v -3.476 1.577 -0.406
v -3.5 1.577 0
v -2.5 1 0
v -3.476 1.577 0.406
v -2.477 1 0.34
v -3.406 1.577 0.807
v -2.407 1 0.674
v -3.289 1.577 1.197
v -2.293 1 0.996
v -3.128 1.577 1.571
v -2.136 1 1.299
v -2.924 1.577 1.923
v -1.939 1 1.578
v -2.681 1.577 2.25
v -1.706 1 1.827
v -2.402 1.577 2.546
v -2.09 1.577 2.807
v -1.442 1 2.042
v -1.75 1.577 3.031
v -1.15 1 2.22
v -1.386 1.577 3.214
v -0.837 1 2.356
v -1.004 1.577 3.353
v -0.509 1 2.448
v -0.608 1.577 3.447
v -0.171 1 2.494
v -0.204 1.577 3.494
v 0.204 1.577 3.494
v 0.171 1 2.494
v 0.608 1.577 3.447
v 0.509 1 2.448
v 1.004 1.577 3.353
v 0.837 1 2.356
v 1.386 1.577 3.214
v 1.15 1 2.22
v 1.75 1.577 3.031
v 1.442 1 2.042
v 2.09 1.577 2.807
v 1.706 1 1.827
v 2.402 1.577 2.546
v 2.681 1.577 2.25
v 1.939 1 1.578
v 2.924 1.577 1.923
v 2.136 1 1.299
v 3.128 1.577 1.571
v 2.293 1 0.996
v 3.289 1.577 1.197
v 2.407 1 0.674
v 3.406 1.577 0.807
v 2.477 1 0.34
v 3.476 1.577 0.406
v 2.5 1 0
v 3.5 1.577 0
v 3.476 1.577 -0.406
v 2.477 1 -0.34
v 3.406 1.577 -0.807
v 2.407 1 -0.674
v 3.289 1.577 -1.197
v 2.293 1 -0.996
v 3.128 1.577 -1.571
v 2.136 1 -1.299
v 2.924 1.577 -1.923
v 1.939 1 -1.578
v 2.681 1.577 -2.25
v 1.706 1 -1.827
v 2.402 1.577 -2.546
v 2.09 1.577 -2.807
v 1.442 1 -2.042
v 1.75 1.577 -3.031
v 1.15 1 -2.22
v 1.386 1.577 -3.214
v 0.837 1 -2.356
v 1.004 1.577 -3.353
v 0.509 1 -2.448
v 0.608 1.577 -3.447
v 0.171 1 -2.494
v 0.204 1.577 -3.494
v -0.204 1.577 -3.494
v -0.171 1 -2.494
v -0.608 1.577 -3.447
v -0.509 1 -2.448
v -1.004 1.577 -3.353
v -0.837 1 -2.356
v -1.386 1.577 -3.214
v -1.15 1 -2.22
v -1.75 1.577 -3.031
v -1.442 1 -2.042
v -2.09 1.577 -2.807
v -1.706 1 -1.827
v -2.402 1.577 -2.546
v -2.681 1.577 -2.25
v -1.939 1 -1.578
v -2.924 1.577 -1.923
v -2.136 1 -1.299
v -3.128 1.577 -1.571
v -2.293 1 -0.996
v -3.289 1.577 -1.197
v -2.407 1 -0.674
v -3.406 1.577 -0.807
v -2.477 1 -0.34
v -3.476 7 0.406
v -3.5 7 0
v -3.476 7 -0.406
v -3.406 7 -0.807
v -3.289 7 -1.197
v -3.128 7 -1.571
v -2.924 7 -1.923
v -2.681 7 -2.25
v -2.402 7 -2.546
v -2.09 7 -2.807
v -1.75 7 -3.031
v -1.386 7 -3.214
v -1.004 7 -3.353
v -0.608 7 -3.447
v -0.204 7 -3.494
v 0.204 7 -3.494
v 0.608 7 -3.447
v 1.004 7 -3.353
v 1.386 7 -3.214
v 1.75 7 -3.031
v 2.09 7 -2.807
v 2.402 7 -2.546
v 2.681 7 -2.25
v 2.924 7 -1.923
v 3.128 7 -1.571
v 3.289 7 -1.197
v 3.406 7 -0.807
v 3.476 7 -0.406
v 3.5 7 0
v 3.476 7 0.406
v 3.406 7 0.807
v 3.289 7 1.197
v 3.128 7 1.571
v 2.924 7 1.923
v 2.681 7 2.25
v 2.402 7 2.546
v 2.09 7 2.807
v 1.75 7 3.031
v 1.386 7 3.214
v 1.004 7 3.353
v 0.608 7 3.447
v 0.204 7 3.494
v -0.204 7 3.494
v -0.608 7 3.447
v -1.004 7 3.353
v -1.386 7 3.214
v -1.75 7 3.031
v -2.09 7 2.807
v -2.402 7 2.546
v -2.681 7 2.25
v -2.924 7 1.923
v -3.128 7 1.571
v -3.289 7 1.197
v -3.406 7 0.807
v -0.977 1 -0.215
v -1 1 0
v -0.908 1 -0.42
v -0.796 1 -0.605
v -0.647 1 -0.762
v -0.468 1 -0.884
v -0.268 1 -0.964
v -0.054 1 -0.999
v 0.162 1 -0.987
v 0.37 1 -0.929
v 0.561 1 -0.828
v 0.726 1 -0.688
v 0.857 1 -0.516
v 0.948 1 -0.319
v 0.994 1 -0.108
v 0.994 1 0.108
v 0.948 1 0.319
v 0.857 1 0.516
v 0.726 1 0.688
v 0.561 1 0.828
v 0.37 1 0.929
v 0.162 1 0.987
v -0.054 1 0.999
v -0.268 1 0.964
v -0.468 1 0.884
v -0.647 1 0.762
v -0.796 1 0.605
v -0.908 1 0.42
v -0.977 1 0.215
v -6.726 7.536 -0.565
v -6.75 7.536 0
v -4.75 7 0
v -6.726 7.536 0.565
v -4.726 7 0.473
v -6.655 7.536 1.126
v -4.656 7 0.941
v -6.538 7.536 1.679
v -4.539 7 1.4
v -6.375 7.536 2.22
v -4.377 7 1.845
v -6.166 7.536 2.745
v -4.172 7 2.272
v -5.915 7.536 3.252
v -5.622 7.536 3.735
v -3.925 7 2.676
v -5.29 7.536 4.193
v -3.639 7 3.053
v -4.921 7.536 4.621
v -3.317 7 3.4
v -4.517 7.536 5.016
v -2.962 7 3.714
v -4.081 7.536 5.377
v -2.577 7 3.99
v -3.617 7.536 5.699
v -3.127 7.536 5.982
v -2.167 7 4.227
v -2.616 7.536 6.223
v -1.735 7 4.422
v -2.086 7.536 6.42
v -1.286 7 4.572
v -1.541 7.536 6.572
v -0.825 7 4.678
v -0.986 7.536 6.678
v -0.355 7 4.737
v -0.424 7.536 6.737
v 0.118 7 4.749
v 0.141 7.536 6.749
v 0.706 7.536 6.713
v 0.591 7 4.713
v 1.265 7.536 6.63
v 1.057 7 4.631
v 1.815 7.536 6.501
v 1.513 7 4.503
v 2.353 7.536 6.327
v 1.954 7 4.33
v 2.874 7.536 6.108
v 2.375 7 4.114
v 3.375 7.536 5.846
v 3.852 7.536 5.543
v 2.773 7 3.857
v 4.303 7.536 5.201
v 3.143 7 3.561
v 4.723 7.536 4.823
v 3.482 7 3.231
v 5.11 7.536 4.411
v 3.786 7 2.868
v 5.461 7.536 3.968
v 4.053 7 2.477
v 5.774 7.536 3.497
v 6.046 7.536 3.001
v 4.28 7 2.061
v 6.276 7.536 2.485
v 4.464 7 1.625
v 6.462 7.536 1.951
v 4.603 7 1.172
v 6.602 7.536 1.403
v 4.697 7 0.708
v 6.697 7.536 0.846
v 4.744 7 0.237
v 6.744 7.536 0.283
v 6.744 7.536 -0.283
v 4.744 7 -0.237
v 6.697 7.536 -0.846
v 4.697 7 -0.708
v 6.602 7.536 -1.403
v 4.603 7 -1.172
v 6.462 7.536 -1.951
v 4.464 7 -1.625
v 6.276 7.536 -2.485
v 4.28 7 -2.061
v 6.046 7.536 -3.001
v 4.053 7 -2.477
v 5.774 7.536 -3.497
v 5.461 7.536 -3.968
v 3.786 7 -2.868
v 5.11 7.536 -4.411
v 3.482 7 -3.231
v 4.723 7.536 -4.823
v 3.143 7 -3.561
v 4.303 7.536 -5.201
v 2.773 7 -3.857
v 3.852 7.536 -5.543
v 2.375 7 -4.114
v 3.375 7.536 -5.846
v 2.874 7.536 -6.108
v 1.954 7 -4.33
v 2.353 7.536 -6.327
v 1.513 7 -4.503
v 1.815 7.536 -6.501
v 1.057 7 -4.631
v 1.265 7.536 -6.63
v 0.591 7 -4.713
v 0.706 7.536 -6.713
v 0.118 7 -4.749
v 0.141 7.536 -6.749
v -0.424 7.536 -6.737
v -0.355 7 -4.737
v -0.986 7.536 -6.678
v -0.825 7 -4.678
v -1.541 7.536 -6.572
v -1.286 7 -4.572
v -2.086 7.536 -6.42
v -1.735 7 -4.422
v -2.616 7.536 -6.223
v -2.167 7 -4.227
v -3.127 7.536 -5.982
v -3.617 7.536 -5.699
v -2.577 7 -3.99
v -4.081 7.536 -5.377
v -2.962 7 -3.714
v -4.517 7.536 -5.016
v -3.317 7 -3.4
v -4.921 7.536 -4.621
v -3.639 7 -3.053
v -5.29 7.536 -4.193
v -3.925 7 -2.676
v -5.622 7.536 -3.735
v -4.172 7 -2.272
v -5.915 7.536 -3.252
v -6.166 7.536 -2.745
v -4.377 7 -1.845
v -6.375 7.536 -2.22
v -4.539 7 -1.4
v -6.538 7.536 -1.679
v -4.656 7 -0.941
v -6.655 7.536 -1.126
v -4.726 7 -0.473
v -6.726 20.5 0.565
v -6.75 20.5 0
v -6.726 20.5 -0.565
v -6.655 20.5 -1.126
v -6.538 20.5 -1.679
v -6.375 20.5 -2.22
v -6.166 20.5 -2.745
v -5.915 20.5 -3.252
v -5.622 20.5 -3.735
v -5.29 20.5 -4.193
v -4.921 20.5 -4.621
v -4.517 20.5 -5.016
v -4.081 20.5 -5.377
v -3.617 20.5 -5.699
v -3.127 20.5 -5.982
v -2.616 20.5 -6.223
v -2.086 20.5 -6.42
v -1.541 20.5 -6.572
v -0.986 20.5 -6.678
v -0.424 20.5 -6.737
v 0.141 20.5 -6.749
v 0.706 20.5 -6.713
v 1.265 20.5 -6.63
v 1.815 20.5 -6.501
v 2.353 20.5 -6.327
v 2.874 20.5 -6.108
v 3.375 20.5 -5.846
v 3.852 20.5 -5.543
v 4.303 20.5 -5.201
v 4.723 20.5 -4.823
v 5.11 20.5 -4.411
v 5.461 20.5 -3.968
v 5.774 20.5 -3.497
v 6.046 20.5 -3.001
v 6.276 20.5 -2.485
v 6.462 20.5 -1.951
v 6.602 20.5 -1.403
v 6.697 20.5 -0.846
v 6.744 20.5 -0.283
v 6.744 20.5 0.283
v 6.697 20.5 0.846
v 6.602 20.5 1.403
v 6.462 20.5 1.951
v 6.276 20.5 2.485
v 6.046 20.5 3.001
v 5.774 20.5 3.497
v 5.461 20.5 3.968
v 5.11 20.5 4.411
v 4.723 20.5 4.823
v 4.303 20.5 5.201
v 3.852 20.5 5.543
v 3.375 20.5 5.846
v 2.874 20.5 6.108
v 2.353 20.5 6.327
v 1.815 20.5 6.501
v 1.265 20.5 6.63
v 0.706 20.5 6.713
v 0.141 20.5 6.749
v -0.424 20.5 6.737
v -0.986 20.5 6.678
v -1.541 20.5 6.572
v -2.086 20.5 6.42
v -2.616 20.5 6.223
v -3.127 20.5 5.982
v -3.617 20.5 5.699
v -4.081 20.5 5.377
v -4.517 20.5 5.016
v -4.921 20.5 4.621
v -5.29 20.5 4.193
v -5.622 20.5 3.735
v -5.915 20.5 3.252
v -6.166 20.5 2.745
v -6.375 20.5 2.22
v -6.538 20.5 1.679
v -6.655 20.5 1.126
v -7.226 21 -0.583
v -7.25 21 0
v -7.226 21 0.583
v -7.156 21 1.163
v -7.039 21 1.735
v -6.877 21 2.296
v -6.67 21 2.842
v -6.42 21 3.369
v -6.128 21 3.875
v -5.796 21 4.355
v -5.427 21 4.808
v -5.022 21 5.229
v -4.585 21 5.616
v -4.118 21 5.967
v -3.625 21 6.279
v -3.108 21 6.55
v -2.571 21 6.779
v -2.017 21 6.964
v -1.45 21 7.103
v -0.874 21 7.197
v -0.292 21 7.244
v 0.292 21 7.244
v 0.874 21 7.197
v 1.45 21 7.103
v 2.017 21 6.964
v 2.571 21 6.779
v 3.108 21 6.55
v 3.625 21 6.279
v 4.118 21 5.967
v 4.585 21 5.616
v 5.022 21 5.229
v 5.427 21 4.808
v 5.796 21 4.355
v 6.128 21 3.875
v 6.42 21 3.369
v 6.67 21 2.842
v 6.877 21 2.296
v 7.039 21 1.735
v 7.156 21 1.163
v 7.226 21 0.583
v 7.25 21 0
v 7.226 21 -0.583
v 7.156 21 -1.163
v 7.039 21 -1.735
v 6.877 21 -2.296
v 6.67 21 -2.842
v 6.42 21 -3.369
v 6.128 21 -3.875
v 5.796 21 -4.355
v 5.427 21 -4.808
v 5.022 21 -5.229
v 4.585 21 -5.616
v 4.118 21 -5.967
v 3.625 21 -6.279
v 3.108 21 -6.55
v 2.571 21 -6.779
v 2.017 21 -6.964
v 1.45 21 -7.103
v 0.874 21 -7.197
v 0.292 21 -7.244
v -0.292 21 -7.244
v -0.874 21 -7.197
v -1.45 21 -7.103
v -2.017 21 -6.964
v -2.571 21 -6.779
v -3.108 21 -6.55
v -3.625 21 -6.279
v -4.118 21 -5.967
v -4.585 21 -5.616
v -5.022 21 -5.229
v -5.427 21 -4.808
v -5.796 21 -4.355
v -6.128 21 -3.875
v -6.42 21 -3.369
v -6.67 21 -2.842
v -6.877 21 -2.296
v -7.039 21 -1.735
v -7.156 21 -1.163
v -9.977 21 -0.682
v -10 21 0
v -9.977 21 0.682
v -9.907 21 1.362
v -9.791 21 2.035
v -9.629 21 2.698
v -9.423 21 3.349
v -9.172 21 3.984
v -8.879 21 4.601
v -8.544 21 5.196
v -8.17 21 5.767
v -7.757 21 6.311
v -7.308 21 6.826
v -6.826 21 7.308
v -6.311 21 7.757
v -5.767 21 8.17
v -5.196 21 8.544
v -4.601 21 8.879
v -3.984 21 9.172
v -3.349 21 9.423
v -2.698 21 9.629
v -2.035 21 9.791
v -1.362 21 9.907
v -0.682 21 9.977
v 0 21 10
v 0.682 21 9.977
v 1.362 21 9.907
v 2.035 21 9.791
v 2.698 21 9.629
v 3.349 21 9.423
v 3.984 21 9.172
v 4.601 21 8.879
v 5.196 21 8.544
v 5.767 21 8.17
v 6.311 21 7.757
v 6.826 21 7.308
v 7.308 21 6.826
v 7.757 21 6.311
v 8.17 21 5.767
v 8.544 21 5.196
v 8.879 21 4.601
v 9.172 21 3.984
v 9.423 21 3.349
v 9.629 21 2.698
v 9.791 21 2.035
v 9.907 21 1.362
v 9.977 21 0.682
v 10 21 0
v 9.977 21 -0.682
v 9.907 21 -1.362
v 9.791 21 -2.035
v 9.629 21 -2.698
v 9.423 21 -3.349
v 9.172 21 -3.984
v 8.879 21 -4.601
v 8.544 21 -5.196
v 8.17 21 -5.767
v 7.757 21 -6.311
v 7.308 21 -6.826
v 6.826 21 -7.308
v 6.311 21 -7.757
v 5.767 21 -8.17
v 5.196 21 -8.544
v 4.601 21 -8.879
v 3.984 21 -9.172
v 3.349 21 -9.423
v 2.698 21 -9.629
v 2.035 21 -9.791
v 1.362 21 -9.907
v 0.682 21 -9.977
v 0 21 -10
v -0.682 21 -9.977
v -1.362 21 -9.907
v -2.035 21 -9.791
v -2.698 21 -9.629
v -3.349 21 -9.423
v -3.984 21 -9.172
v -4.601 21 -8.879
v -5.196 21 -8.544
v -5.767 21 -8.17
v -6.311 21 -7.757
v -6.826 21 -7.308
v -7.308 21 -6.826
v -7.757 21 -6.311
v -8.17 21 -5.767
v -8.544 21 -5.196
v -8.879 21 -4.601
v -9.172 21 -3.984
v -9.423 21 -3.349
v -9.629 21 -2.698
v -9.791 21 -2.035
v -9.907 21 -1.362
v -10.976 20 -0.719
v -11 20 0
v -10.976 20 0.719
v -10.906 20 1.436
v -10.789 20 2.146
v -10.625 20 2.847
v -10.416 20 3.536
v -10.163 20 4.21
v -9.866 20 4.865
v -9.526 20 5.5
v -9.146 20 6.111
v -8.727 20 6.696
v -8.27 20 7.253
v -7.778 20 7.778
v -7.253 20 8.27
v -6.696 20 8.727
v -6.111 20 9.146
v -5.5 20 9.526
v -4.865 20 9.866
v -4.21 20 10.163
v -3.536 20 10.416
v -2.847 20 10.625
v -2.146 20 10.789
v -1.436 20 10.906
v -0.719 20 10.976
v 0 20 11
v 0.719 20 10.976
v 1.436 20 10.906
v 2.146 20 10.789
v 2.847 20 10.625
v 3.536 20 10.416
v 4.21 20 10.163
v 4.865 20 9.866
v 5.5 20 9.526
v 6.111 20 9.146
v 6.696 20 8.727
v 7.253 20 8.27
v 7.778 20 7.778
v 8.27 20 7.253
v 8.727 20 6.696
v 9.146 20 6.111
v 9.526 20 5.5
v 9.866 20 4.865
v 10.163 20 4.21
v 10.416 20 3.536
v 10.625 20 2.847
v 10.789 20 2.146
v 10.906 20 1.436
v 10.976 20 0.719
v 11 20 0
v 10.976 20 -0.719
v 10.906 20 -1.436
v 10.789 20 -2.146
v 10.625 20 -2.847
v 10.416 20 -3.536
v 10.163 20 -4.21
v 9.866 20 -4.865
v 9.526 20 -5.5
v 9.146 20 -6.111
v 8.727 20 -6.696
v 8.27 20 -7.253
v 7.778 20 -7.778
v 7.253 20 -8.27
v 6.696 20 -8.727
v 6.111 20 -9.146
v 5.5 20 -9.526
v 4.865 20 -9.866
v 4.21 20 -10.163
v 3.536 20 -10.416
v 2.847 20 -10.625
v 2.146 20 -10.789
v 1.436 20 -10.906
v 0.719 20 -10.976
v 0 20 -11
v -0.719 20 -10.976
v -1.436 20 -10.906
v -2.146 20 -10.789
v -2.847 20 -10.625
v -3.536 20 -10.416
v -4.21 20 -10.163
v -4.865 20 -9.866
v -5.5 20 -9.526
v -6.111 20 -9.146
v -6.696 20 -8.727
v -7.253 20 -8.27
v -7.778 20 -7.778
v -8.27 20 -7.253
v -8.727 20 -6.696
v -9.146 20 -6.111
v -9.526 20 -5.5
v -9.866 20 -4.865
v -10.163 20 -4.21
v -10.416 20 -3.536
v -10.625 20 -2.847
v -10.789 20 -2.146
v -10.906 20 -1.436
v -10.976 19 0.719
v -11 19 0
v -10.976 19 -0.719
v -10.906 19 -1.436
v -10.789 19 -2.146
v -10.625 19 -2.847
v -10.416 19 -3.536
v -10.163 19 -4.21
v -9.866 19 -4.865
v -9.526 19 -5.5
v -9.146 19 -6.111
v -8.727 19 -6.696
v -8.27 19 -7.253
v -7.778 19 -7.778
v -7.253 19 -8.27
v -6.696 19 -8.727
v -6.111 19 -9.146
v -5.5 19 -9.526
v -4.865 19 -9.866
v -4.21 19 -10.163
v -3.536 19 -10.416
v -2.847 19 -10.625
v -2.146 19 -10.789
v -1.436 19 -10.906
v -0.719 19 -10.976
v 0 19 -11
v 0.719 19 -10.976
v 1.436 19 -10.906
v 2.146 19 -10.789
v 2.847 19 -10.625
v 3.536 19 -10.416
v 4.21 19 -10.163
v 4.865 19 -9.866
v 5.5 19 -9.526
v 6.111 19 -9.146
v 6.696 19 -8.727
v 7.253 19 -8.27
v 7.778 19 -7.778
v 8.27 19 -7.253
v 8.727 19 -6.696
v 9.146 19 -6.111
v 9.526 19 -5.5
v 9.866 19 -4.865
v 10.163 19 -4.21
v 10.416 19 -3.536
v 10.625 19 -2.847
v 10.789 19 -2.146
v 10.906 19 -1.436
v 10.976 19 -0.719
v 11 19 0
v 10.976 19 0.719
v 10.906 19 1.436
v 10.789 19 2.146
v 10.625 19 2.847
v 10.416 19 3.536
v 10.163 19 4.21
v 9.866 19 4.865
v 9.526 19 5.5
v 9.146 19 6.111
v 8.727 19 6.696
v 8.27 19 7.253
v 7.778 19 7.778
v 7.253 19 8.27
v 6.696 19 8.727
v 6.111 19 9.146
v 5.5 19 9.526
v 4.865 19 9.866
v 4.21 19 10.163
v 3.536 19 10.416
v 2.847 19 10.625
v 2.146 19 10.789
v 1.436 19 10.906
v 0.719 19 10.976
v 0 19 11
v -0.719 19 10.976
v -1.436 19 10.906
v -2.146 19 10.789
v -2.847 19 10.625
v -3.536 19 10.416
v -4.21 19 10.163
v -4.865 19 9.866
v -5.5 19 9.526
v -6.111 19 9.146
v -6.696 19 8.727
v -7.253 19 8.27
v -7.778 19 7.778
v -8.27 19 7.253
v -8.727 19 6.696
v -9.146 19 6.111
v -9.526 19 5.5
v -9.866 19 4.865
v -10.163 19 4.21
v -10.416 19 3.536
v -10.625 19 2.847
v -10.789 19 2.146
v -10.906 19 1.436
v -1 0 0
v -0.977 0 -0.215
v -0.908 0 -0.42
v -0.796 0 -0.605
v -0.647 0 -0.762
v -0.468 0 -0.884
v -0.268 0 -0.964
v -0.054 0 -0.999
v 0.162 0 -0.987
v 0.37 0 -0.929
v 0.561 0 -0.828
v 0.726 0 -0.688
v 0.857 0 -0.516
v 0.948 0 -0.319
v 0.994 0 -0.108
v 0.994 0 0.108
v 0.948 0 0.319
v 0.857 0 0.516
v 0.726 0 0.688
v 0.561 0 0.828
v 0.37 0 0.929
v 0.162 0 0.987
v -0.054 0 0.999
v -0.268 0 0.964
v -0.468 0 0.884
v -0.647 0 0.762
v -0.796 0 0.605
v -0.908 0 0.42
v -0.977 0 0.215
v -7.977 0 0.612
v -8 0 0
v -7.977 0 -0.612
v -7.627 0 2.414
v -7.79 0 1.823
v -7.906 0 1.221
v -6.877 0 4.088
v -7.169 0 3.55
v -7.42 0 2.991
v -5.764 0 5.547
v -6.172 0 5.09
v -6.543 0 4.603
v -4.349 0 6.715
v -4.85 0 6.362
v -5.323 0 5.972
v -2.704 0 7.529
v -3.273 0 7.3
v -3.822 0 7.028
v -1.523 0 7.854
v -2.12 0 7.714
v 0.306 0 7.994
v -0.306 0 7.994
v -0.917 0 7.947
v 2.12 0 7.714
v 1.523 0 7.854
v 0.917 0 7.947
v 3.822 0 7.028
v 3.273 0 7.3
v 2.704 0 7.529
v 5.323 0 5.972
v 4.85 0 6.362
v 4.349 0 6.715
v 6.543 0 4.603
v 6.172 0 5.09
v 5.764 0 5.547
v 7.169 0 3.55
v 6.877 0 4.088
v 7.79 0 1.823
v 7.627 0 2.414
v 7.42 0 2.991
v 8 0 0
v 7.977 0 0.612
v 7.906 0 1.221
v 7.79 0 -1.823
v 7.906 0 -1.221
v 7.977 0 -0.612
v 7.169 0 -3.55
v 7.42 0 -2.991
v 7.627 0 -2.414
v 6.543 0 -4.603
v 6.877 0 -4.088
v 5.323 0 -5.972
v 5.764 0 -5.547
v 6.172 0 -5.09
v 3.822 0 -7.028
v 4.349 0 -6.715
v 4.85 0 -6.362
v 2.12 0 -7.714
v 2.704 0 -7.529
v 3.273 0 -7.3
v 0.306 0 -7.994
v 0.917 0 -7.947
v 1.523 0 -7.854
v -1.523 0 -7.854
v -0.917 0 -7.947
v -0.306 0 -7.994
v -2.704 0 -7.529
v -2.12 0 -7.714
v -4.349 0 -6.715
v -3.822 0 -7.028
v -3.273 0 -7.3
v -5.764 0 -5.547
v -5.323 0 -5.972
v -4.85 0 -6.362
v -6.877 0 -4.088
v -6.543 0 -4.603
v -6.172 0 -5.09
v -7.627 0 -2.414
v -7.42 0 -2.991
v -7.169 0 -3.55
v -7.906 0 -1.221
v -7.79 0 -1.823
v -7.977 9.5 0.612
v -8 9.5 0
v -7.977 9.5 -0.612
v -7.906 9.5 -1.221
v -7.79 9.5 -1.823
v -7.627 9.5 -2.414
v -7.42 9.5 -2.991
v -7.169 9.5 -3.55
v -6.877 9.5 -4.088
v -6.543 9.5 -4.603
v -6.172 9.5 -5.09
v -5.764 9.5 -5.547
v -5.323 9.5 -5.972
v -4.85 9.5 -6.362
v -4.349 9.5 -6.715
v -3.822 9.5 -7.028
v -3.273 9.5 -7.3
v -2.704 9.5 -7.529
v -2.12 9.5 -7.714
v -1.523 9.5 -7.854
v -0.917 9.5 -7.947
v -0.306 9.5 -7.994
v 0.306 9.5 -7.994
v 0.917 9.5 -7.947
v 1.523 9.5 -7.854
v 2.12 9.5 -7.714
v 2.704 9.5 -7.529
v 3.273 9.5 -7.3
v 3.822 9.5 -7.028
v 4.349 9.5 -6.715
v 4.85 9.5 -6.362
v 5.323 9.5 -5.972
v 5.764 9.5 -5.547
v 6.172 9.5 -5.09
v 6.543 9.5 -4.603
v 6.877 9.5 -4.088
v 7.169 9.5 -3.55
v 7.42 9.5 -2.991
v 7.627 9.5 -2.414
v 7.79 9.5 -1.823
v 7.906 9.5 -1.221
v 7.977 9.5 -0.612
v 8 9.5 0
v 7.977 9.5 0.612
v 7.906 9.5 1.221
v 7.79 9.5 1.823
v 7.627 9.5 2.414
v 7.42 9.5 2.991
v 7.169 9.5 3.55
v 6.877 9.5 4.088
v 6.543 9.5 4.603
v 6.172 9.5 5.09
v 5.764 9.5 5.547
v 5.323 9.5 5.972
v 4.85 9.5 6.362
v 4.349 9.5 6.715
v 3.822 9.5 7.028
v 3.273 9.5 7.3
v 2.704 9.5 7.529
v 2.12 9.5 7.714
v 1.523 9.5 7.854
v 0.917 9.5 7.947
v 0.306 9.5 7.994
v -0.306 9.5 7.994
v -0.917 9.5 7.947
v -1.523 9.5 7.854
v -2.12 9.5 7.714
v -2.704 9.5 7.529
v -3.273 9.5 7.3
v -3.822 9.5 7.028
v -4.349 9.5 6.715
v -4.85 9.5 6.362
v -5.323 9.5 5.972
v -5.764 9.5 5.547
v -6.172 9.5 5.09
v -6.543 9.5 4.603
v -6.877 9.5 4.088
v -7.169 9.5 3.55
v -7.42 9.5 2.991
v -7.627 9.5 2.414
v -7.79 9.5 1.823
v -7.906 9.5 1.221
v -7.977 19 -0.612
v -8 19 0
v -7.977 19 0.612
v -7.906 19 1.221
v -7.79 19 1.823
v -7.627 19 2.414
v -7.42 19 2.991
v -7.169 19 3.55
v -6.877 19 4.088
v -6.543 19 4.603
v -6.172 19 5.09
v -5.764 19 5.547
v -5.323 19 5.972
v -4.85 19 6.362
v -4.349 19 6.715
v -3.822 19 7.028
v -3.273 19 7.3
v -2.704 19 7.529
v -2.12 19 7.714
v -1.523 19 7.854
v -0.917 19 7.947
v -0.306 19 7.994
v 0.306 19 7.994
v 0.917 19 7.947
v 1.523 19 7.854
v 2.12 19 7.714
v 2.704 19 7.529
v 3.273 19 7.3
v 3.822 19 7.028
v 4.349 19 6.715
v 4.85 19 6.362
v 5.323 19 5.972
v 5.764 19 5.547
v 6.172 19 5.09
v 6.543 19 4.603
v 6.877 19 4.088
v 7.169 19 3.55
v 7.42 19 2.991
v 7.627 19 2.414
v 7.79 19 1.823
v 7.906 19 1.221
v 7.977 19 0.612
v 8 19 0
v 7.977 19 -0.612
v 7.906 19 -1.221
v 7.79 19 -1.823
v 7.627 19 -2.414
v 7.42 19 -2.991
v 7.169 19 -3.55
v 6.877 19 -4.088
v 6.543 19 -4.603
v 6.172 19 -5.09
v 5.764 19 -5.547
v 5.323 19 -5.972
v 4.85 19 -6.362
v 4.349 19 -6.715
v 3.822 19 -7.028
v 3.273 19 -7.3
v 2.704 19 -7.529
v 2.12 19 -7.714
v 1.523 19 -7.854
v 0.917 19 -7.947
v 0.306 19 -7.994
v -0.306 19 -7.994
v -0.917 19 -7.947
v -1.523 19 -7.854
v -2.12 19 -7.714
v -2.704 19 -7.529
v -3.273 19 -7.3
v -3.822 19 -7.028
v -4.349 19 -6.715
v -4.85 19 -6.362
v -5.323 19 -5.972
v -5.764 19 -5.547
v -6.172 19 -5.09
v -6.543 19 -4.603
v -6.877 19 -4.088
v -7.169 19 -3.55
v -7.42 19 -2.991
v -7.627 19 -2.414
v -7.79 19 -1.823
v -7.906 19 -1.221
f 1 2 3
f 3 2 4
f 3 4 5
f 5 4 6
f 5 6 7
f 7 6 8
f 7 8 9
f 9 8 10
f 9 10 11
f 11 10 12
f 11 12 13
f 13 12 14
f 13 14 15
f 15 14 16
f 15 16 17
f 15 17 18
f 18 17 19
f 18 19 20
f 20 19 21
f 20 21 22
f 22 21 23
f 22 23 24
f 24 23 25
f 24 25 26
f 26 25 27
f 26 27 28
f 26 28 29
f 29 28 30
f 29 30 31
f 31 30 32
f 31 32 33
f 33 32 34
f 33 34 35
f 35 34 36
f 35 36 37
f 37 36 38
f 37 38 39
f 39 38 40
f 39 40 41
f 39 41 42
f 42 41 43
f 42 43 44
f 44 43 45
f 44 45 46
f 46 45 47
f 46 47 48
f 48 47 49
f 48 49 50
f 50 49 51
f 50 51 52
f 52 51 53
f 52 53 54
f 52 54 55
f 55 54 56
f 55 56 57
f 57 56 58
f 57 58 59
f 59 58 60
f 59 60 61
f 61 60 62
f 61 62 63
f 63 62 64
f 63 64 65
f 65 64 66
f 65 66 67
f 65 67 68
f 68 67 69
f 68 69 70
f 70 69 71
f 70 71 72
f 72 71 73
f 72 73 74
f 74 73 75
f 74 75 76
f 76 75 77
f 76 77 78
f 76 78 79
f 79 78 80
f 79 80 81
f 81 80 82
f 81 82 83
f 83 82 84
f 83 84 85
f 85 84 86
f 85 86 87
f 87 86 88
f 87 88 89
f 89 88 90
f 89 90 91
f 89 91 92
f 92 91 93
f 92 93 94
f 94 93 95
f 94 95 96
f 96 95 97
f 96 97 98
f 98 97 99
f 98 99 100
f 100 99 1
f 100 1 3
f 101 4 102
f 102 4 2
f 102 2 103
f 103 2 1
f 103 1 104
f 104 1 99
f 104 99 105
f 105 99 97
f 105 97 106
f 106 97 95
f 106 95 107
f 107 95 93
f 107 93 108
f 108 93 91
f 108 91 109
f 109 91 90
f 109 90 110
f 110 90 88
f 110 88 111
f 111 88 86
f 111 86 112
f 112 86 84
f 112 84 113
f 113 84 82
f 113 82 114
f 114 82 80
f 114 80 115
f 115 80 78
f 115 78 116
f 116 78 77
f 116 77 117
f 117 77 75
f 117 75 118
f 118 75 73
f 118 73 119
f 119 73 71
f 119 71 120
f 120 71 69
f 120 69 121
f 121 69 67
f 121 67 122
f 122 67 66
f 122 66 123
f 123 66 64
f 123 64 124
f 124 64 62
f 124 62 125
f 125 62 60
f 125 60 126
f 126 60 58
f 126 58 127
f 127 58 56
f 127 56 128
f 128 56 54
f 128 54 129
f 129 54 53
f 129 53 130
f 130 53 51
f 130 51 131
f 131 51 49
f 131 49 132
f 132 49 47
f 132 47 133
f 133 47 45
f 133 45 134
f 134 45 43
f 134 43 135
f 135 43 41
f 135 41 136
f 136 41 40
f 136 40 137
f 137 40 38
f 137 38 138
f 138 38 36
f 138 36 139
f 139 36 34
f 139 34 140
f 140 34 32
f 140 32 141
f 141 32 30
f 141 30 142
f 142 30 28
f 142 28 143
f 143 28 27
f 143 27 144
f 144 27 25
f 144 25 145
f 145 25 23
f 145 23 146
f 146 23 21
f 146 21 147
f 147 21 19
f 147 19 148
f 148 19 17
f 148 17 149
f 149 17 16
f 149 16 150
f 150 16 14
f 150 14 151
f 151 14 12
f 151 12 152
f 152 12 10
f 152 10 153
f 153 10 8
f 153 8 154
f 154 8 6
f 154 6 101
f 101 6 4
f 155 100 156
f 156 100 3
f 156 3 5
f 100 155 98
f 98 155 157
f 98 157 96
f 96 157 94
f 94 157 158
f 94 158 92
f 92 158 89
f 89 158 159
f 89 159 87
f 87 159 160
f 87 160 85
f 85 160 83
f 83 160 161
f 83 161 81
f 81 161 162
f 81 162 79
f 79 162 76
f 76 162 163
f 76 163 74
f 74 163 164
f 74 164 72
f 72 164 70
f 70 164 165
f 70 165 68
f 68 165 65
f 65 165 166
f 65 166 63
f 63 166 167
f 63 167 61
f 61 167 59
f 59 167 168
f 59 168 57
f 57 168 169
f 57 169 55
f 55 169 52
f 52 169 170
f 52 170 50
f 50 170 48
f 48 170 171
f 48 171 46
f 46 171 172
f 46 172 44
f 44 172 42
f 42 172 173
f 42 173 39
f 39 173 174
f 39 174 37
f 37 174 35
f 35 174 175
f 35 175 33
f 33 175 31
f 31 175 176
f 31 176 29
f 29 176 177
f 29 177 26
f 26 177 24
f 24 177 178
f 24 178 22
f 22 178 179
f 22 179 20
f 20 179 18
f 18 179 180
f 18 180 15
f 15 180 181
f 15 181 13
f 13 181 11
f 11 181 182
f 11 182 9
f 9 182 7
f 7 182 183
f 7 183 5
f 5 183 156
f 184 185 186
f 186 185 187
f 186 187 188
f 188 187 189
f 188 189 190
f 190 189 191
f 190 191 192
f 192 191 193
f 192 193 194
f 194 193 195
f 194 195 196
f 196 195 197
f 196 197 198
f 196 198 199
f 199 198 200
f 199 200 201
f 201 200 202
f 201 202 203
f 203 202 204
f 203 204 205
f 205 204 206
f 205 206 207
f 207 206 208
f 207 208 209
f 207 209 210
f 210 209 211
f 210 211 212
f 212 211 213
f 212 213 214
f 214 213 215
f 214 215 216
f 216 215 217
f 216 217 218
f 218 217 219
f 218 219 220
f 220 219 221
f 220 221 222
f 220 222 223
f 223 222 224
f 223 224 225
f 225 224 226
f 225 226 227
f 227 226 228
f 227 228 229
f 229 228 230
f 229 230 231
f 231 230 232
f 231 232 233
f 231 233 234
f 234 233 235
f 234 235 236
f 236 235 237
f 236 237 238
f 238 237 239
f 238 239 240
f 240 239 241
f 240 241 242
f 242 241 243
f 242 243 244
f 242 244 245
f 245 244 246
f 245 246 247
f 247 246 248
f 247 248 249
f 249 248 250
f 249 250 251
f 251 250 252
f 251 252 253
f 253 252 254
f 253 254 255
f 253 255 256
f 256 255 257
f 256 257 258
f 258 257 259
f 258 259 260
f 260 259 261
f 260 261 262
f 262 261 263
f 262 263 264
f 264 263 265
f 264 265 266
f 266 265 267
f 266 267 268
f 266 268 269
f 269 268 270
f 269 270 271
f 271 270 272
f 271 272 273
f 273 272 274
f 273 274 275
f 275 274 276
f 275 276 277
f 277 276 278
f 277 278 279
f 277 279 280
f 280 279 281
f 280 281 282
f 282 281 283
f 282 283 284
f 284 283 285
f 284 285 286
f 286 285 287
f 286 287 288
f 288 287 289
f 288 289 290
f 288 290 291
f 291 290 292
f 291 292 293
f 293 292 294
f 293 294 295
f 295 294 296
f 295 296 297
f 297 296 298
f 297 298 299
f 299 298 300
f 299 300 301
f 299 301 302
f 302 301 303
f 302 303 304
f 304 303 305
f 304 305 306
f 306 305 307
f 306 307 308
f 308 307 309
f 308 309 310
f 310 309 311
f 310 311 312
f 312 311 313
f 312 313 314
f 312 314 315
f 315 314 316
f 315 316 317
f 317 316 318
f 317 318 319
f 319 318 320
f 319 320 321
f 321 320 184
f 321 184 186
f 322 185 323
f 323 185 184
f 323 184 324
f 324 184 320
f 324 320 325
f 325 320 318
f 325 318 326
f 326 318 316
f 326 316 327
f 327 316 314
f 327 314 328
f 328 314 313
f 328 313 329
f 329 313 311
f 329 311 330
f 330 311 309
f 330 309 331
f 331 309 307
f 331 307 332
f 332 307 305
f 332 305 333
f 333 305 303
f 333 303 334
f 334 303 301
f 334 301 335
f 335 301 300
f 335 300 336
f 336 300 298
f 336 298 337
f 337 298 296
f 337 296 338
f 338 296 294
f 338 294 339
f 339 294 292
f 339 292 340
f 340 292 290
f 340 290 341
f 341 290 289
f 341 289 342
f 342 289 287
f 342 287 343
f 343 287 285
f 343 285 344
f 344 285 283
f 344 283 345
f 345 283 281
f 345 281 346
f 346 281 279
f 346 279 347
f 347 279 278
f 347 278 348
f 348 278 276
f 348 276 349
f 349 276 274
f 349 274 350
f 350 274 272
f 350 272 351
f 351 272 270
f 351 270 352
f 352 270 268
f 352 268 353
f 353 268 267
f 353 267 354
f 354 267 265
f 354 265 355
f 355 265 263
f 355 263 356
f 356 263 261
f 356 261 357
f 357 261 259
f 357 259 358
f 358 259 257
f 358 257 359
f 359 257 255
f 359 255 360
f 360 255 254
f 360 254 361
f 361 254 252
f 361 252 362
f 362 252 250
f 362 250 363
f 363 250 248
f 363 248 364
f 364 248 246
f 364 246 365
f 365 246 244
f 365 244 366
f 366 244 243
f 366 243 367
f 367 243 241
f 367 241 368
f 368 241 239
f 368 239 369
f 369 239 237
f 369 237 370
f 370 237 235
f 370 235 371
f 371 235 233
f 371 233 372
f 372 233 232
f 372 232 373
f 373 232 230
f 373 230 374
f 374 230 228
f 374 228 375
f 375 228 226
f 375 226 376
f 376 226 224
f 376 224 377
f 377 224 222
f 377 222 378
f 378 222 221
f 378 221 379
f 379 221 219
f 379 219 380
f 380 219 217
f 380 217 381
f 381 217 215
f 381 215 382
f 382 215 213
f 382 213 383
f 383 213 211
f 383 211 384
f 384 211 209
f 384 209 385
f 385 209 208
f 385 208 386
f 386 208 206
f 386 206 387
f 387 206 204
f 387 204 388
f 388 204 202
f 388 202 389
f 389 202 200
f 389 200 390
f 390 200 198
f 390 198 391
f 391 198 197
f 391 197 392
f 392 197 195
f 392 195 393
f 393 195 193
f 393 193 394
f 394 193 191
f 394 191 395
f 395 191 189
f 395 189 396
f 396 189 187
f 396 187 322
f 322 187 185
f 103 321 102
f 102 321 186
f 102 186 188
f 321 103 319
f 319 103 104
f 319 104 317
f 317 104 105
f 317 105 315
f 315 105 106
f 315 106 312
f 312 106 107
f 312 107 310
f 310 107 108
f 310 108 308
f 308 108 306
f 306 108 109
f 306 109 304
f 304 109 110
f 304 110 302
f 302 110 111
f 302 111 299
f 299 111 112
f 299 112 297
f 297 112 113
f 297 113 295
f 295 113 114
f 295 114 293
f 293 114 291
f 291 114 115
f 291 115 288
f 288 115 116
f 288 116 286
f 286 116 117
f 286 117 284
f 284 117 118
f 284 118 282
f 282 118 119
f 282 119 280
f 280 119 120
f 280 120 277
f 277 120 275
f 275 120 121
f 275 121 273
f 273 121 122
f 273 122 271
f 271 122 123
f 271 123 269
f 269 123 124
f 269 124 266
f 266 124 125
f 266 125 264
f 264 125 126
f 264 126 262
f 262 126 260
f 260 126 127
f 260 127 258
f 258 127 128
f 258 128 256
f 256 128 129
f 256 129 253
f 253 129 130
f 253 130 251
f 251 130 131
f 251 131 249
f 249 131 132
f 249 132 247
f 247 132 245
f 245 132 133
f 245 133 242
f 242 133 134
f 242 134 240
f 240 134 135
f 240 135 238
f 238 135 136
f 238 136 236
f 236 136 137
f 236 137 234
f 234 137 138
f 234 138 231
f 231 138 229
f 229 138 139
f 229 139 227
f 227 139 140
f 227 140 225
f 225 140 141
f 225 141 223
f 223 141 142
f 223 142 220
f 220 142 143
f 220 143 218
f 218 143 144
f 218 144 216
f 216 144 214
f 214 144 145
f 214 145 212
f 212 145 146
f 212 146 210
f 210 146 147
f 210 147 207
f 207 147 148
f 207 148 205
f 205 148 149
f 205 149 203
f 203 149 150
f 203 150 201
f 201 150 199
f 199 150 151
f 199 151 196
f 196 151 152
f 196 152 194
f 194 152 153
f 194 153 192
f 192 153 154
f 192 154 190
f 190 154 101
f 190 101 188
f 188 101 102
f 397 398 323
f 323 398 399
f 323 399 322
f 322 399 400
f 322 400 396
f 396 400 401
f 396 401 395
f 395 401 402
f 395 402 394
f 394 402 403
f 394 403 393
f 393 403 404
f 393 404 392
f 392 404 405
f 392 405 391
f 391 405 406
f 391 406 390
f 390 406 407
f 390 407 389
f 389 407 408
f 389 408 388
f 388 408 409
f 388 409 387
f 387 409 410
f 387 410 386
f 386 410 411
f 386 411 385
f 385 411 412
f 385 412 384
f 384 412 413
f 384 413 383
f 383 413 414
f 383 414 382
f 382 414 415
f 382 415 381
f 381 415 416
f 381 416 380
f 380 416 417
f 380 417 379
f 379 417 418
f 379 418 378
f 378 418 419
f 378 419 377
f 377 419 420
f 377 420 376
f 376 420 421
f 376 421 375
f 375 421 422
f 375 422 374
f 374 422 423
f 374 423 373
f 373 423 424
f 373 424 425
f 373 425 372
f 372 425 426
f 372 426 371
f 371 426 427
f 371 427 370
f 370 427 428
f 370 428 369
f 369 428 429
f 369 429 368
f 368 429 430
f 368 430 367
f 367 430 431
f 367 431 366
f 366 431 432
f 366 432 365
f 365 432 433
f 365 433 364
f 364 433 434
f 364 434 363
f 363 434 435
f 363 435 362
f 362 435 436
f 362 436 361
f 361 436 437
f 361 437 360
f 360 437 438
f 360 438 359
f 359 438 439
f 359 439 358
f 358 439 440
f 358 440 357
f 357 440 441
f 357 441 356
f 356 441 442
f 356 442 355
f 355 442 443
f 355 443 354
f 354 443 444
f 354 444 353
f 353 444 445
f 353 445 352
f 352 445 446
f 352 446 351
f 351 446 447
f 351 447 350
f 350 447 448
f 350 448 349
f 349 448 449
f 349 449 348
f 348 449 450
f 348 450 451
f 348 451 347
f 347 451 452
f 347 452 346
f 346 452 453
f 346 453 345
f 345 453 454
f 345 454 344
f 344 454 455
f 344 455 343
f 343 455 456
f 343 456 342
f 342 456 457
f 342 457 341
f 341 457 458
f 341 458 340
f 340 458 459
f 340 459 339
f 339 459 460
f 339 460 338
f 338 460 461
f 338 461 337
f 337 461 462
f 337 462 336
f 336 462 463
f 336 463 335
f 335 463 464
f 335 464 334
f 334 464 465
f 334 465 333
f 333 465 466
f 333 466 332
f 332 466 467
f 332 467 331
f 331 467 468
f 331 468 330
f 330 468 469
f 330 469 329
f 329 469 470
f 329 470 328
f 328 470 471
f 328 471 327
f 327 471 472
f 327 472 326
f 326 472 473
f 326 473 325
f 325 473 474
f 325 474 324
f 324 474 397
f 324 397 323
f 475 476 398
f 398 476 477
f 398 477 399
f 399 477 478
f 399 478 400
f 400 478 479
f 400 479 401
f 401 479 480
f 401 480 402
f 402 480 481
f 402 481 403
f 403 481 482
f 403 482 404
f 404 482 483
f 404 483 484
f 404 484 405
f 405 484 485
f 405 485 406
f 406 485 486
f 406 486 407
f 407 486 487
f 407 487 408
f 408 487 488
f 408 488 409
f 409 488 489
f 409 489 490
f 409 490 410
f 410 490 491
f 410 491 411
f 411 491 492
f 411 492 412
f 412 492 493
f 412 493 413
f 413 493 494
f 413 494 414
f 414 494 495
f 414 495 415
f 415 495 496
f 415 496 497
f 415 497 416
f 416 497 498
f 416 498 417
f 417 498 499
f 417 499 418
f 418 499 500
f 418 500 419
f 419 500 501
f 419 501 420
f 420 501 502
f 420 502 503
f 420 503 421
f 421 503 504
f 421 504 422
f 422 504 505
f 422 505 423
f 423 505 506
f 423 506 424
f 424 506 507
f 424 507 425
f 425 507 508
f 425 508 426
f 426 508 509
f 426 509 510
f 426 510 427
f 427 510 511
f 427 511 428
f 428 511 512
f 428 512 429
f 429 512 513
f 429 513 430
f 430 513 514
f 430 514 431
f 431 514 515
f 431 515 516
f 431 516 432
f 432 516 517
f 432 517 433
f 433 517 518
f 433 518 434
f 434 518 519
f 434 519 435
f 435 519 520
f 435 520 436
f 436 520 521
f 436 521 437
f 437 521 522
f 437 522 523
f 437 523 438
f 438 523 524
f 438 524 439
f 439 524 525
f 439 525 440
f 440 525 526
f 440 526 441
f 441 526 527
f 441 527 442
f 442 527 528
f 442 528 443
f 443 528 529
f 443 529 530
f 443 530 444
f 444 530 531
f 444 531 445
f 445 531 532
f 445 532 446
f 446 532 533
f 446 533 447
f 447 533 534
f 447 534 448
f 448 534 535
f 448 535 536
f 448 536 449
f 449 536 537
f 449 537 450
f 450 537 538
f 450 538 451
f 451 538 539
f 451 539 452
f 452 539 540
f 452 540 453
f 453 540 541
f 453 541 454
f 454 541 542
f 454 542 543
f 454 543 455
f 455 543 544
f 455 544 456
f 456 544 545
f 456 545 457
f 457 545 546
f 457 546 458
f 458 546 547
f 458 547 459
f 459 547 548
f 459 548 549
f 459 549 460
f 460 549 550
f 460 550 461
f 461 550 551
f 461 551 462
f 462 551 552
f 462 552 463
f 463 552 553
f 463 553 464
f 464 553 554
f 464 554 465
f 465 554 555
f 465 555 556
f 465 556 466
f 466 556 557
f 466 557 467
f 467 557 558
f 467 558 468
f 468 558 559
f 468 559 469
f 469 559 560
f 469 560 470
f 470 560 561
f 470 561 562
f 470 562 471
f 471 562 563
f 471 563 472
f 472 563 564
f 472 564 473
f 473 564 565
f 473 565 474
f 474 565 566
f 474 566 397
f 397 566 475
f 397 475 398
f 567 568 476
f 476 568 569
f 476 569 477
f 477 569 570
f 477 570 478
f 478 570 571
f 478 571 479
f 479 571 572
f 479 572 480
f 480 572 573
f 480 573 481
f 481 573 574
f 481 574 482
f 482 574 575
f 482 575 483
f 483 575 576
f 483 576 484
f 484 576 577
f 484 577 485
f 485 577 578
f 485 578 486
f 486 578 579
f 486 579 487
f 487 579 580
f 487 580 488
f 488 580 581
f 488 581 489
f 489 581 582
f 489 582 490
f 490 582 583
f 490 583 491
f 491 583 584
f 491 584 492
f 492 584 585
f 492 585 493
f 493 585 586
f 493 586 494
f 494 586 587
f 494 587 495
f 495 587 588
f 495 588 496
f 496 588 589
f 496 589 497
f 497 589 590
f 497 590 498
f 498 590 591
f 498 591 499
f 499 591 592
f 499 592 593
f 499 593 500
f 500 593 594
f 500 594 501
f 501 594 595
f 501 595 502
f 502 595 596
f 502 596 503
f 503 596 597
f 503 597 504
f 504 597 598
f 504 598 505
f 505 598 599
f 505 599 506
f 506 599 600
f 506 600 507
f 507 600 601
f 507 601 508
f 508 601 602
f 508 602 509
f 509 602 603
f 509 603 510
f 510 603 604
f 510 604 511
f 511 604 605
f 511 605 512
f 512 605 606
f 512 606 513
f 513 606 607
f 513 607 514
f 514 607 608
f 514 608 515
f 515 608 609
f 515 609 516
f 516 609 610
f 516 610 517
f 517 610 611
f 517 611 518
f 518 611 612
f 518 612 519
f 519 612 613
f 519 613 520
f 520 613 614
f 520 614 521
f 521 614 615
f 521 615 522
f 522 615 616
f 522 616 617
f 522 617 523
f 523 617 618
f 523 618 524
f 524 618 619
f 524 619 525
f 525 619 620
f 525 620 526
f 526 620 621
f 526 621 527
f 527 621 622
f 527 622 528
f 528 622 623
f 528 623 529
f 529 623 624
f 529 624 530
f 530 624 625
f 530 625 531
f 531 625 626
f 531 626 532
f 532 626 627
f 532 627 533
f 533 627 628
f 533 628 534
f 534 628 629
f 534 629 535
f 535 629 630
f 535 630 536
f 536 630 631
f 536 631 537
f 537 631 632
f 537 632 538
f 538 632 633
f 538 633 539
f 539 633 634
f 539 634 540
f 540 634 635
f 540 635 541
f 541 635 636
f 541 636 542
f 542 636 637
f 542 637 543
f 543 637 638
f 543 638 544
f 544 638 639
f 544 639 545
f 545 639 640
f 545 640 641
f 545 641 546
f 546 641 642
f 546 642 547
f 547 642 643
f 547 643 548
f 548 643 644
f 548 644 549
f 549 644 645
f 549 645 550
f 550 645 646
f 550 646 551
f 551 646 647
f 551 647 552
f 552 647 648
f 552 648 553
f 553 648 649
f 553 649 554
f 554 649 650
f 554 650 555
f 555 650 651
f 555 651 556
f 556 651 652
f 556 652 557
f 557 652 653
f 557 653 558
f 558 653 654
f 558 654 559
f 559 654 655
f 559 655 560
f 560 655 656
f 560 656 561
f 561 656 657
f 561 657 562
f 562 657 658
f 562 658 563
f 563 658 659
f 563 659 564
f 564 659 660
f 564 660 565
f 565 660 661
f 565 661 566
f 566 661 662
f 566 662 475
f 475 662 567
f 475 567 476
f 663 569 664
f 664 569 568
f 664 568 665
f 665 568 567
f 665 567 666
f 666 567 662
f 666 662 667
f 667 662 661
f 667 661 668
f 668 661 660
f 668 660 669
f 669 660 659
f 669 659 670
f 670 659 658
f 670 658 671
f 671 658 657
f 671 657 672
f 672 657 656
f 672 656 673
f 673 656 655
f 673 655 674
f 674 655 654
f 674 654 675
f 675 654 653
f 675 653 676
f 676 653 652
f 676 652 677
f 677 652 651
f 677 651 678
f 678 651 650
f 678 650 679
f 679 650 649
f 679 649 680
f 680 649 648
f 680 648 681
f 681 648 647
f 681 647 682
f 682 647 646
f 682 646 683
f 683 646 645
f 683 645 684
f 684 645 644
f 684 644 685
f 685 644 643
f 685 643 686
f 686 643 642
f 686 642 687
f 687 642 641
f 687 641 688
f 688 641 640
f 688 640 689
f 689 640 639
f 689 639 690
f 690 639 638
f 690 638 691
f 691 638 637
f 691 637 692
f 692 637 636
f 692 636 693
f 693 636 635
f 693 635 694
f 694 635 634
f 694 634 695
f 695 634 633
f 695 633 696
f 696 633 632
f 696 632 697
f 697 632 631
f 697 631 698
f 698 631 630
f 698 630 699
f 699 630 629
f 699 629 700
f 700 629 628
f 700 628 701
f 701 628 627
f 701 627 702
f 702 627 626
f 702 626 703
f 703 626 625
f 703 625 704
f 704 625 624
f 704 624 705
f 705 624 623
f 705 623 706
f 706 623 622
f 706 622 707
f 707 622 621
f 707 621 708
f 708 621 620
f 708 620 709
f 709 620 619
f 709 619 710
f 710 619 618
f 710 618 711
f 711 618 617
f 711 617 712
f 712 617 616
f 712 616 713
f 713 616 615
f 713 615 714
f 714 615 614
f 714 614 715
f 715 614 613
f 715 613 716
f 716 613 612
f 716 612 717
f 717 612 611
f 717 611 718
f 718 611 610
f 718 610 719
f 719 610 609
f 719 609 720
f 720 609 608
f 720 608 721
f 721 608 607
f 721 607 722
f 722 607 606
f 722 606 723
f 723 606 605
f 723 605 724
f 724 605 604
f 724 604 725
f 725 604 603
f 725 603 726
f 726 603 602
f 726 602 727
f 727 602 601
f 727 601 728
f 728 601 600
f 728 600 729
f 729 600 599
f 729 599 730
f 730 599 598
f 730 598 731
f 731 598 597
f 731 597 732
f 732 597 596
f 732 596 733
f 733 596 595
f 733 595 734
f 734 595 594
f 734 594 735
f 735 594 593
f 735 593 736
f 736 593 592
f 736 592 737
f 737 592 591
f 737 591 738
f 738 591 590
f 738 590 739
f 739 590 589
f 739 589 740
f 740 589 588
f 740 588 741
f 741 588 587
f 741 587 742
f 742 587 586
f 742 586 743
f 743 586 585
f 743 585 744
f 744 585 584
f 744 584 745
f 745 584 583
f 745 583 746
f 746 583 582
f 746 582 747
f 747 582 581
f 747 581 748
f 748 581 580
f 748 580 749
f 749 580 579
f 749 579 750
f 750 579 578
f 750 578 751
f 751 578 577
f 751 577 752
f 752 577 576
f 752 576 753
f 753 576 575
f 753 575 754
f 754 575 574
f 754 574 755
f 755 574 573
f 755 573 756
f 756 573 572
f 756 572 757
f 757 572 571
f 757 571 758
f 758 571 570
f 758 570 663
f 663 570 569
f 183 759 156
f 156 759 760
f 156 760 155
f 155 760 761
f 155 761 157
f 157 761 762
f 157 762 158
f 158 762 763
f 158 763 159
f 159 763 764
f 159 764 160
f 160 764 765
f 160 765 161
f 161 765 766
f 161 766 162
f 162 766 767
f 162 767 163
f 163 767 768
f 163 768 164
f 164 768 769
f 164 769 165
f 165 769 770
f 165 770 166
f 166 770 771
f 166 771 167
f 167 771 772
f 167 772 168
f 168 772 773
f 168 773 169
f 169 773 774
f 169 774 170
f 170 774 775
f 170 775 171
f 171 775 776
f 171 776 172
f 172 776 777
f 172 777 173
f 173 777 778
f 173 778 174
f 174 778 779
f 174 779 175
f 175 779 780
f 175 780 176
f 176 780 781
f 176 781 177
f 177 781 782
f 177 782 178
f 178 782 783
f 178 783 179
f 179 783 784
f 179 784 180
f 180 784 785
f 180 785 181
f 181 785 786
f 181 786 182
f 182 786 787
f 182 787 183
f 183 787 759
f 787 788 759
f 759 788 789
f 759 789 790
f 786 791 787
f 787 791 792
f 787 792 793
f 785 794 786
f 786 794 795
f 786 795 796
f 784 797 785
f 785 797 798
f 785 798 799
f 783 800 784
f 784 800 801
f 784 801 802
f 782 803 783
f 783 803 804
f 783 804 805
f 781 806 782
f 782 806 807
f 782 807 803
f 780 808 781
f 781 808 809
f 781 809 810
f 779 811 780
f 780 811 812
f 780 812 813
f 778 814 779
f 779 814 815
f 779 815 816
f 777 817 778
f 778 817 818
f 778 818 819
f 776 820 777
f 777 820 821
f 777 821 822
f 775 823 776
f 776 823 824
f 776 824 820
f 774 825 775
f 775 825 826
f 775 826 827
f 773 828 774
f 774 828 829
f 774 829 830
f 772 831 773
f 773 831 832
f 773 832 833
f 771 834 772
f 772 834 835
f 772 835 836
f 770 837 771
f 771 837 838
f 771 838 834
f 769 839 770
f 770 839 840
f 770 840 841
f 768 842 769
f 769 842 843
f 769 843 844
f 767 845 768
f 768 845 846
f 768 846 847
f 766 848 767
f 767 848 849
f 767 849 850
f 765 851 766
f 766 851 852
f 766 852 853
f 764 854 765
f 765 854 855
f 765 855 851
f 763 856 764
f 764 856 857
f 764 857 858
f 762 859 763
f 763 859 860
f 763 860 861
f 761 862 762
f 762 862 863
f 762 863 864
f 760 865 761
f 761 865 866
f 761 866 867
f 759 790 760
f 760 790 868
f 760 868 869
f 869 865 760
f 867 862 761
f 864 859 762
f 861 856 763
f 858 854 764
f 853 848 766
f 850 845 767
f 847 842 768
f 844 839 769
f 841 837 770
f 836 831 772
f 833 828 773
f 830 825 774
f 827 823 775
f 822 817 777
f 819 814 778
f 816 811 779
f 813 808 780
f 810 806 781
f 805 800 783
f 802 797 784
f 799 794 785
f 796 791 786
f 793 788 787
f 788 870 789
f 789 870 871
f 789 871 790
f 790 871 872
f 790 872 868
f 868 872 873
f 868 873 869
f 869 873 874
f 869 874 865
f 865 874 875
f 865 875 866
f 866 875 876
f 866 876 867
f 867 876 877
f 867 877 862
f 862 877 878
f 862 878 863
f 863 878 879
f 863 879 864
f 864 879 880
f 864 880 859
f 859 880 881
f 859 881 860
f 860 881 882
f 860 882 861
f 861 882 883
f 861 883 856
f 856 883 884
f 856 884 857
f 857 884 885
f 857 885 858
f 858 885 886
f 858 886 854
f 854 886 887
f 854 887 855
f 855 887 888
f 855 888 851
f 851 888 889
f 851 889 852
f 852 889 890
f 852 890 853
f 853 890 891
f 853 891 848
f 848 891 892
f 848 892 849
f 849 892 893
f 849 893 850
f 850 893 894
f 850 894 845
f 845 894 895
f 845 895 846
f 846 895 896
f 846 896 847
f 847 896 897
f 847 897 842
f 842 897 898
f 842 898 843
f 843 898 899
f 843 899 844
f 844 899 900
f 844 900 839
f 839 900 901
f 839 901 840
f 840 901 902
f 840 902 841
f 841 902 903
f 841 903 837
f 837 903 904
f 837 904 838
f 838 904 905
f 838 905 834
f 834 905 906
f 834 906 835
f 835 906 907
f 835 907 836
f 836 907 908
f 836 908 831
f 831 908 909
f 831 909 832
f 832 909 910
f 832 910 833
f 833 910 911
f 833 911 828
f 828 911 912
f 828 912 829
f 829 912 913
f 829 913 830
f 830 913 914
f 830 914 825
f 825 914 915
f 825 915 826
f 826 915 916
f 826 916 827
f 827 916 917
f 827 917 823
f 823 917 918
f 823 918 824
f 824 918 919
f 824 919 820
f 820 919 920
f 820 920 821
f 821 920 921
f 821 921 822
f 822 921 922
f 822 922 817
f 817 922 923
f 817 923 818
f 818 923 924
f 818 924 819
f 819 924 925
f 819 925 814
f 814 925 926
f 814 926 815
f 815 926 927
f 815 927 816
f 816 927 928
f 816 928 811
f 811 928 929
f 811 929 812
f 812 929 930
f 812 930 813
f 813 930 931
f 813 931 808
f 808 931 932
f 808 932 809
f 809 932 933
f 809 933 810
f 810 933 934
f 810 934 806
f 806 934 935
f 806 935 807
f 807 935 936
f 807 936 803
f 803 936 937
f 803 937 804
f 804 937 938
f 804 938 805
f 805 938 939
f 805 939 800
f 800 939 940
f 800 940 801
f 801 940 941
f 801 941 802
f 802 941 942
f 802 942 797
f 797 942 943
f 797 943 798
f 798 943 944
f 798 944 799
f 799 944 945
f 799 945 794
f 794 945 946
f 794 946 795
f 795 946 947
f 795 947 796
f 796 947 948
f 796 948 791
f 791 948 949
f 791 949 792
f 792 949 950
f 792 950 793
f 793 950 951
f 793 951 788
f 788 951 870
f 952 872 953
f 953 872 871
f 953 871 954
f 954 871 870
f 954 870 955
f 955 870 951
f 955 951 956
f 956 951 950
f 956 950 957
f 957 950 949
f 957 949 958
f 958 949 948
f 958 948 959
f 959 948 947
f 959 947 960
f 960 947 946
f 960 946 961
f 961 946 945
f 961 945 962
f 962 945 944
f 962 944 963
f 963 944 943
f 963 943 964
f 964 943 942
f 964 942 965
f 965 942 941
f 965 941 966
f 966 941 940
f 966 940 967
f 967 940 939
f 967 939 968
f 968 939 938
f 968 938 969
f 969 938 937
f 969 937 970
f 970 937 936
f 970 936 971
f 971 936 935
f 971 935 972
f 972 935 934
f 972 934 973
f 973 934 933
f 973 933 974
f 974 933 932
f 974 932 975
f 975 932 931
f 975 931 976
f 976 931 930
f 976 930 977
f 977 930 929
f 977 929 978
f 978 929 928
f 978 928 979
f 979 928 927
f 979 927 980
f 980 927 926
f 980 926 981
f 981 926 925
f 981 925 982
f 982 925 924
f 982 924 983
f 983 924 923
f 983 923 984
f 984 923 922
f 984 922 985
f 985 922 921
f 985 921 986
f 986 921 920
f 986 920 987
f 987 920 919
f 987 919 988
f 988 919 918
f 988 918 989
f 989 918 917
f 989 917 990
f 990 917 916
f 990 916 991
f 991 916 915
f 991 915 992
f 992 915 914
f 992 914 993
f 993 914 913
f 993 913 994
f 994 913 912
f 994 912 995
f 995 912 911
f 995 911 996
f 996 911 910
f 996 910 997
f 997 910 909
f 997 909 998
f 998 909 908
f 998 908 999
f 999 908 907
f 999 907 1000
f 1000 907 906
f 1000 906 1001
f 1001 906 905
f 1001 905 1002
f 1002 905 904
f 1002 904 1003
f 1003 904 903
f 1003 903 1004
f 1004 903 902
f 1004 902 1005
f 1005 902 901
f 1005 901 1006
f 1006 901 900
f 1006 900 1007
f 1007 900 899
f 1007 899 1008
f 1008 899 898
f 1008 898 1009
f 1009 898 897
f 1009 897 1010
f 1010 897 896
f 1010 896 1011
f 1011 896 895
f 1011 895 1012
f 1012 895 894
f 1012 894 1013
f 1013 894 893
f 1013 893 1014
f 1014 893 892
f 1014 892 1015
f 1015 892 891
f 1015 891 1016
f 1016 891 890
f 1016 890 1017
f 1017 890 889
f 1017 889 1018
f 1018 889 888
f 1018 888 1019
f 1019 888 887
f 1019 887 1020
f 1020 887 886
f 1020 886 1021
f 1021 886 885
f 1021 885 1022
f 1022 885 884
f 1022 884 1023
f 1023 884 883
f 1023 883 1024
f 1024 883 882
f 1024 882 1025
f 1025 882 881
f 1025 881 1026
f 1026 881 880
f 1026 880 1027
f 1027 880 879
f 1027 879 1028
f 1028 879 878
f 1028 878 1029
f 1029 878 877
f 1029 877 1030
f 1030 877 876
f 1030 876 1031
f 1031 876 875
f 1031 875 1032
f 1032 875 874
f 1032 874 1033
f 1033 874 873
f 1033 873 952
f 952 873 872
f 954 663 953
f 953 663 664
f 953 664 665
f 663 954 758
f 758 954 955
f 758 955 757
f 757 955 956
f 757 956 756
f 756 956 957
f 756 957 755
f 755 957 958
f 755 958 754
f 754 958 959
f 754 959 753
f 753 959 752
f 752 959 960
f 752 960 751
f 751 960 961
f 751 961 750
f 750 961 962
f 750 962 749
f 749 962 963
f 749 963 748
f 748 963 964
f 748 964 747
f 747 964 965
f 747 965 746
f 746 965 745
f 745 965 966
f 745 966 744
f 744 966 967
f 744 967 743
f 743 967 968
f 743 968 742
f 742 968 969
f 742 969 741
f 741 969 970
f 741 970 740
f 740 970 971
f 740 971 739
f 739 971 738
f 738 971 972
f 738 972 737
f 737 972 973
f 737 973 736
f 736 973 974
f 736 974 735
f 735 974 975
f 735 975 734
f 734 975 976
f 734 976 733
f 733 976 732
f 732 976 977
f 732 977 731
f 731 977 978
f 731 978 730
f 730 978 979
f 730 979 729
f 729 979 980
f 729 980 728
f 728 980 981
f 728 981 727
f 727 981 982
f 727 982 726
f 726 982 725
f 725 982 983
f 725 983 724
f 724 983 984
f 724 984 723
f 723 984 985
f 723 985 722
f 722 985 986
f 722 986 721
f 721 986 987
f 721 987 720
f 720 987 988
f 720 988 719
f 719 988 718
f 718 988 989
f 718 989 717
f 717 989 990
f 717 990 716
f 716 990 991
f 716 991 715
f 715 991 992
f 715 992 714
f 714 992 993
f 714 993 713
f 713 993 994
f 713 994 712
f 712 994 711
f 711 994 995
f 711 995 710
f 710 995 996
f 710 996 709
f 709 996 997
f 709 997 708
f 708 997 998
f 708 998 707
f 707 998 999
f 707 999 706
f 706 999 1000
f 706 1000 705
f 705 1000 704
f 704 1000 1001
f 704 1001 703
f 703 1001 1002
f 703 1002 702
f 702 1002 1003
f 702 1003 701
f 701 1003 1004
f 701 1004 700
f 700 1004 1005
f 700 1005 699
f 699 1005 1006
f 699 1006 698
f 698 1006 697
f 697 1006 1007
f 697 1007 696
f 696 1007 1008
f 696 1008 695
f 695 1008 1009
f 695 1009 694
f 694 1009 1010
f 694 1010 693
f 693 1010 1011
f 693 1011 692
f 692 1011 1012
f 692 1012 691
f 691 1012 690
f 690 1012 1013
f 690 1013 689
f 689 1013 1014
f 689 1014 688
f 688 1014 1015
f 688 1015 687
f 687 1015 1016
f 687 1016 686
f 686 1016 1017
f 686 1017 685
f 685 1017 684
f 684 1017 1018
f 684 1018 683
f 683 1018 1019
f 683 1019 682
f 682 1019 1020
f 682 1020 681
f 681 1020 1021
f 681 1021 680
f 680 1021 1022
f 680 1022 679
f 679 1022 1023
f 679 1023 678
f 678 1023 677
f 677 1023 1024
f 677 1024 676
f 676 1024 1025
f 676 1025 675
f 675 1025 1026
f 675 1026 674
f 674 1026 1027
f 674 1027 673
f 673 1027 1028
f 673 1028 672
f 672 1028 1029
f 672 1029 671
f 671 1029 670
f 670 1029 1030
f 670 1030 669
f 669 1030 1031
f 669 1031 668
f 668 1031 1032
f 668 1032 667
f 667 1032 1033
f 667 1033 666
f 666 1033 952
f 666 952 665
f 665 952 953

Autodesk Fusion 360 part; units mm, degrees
sketch "Sketch1" plane through (0, 0, 0) normal (0, 0, 1) x (1, 0, 0)
  line L0 (0, 0) -> (-8, 0)
  line L1 (-8, 0) -> (-8, 19)
  line L2 (-8, 19) -> (0, 19)
  line L3 (0, 19) -> (0, 0)
  line L4 (0, 19) -> (-6.75, 19)
  line L5 (-6.75, 19) -> (-6.75, 7)
  line L6 (-6.75, 7) -> (0, 7)
  line L7 (0, 7) -> (0, 19)
  line L8 (0, 7) -> (-3.5, 7)
  line L9 (-3.5, 7) -> (-3.5, 1)
  line L10 (-3.5, 1) -> (0, 1)
  line L11 (0, 1) -> (0, 7)
  line L12 (0, 19) -> (-11, 19)
  line L13 (-11, 19) -> (-11, 21)
  line L14 (-11, 21) -> (0, 21)
  line L15 (0, 21) -> (0, 19)
  line L16 (-6.75, 19) -> (-6.75, 21)
  line L17 (0, 1) -> (-1, 1)
  line L18 (-1, 1) -> (-1, 0)
  line L19 (-1, 0) -> (0, 0)
  line L20 (0, 0) -> (0, 1)
  dimension "d1" = 19
  dimension "d2" = 8
  dimension "d7" = 12
  dimension "d8" = 6.75
  dimension "d9" = 6
  dimension "d10" = 3.5
  dimension "d11" = 11
  dimension "d12" = 2
revolve "Revolve1" add sketch "Sketch1" angle 360 about axis through (0, 19, 0) along (0, -1, 0) contours L0 L1 L2 L5 L6 L9 L10 L12 L18 | L2 L12 L13 L14 L16
chamfer "Chamfer1" distance 1 angle 45 1 edges at (-10.2556, 21, 3.9778)
chamfer "Chamfer2" distance 0.5 angle 45 1 edges at (-6.2932, 21, 2.4409)
chamfer "Chamfer3" distance 2 angle 15 1 edges at (-6.2932, 7, 2.4409) measured on face at (-5.6285, 7, 0.5092)
chamfer "Chamfer4" distance 1 angle 30 1 edges at (-3.2631, 1, 1.2657) measured on face at (-2.6499, 1, 0.2236)
equation "d2 = Width / 2"
equation "Height = 19 mm"
equation "Width = 16 mm"
equation "LargeShank = 13.5 mm"
equation "SmallShank = 7 mm"
equation "d8 = LargeShank / 2"
equation "d10 = SmallShank / 2"
